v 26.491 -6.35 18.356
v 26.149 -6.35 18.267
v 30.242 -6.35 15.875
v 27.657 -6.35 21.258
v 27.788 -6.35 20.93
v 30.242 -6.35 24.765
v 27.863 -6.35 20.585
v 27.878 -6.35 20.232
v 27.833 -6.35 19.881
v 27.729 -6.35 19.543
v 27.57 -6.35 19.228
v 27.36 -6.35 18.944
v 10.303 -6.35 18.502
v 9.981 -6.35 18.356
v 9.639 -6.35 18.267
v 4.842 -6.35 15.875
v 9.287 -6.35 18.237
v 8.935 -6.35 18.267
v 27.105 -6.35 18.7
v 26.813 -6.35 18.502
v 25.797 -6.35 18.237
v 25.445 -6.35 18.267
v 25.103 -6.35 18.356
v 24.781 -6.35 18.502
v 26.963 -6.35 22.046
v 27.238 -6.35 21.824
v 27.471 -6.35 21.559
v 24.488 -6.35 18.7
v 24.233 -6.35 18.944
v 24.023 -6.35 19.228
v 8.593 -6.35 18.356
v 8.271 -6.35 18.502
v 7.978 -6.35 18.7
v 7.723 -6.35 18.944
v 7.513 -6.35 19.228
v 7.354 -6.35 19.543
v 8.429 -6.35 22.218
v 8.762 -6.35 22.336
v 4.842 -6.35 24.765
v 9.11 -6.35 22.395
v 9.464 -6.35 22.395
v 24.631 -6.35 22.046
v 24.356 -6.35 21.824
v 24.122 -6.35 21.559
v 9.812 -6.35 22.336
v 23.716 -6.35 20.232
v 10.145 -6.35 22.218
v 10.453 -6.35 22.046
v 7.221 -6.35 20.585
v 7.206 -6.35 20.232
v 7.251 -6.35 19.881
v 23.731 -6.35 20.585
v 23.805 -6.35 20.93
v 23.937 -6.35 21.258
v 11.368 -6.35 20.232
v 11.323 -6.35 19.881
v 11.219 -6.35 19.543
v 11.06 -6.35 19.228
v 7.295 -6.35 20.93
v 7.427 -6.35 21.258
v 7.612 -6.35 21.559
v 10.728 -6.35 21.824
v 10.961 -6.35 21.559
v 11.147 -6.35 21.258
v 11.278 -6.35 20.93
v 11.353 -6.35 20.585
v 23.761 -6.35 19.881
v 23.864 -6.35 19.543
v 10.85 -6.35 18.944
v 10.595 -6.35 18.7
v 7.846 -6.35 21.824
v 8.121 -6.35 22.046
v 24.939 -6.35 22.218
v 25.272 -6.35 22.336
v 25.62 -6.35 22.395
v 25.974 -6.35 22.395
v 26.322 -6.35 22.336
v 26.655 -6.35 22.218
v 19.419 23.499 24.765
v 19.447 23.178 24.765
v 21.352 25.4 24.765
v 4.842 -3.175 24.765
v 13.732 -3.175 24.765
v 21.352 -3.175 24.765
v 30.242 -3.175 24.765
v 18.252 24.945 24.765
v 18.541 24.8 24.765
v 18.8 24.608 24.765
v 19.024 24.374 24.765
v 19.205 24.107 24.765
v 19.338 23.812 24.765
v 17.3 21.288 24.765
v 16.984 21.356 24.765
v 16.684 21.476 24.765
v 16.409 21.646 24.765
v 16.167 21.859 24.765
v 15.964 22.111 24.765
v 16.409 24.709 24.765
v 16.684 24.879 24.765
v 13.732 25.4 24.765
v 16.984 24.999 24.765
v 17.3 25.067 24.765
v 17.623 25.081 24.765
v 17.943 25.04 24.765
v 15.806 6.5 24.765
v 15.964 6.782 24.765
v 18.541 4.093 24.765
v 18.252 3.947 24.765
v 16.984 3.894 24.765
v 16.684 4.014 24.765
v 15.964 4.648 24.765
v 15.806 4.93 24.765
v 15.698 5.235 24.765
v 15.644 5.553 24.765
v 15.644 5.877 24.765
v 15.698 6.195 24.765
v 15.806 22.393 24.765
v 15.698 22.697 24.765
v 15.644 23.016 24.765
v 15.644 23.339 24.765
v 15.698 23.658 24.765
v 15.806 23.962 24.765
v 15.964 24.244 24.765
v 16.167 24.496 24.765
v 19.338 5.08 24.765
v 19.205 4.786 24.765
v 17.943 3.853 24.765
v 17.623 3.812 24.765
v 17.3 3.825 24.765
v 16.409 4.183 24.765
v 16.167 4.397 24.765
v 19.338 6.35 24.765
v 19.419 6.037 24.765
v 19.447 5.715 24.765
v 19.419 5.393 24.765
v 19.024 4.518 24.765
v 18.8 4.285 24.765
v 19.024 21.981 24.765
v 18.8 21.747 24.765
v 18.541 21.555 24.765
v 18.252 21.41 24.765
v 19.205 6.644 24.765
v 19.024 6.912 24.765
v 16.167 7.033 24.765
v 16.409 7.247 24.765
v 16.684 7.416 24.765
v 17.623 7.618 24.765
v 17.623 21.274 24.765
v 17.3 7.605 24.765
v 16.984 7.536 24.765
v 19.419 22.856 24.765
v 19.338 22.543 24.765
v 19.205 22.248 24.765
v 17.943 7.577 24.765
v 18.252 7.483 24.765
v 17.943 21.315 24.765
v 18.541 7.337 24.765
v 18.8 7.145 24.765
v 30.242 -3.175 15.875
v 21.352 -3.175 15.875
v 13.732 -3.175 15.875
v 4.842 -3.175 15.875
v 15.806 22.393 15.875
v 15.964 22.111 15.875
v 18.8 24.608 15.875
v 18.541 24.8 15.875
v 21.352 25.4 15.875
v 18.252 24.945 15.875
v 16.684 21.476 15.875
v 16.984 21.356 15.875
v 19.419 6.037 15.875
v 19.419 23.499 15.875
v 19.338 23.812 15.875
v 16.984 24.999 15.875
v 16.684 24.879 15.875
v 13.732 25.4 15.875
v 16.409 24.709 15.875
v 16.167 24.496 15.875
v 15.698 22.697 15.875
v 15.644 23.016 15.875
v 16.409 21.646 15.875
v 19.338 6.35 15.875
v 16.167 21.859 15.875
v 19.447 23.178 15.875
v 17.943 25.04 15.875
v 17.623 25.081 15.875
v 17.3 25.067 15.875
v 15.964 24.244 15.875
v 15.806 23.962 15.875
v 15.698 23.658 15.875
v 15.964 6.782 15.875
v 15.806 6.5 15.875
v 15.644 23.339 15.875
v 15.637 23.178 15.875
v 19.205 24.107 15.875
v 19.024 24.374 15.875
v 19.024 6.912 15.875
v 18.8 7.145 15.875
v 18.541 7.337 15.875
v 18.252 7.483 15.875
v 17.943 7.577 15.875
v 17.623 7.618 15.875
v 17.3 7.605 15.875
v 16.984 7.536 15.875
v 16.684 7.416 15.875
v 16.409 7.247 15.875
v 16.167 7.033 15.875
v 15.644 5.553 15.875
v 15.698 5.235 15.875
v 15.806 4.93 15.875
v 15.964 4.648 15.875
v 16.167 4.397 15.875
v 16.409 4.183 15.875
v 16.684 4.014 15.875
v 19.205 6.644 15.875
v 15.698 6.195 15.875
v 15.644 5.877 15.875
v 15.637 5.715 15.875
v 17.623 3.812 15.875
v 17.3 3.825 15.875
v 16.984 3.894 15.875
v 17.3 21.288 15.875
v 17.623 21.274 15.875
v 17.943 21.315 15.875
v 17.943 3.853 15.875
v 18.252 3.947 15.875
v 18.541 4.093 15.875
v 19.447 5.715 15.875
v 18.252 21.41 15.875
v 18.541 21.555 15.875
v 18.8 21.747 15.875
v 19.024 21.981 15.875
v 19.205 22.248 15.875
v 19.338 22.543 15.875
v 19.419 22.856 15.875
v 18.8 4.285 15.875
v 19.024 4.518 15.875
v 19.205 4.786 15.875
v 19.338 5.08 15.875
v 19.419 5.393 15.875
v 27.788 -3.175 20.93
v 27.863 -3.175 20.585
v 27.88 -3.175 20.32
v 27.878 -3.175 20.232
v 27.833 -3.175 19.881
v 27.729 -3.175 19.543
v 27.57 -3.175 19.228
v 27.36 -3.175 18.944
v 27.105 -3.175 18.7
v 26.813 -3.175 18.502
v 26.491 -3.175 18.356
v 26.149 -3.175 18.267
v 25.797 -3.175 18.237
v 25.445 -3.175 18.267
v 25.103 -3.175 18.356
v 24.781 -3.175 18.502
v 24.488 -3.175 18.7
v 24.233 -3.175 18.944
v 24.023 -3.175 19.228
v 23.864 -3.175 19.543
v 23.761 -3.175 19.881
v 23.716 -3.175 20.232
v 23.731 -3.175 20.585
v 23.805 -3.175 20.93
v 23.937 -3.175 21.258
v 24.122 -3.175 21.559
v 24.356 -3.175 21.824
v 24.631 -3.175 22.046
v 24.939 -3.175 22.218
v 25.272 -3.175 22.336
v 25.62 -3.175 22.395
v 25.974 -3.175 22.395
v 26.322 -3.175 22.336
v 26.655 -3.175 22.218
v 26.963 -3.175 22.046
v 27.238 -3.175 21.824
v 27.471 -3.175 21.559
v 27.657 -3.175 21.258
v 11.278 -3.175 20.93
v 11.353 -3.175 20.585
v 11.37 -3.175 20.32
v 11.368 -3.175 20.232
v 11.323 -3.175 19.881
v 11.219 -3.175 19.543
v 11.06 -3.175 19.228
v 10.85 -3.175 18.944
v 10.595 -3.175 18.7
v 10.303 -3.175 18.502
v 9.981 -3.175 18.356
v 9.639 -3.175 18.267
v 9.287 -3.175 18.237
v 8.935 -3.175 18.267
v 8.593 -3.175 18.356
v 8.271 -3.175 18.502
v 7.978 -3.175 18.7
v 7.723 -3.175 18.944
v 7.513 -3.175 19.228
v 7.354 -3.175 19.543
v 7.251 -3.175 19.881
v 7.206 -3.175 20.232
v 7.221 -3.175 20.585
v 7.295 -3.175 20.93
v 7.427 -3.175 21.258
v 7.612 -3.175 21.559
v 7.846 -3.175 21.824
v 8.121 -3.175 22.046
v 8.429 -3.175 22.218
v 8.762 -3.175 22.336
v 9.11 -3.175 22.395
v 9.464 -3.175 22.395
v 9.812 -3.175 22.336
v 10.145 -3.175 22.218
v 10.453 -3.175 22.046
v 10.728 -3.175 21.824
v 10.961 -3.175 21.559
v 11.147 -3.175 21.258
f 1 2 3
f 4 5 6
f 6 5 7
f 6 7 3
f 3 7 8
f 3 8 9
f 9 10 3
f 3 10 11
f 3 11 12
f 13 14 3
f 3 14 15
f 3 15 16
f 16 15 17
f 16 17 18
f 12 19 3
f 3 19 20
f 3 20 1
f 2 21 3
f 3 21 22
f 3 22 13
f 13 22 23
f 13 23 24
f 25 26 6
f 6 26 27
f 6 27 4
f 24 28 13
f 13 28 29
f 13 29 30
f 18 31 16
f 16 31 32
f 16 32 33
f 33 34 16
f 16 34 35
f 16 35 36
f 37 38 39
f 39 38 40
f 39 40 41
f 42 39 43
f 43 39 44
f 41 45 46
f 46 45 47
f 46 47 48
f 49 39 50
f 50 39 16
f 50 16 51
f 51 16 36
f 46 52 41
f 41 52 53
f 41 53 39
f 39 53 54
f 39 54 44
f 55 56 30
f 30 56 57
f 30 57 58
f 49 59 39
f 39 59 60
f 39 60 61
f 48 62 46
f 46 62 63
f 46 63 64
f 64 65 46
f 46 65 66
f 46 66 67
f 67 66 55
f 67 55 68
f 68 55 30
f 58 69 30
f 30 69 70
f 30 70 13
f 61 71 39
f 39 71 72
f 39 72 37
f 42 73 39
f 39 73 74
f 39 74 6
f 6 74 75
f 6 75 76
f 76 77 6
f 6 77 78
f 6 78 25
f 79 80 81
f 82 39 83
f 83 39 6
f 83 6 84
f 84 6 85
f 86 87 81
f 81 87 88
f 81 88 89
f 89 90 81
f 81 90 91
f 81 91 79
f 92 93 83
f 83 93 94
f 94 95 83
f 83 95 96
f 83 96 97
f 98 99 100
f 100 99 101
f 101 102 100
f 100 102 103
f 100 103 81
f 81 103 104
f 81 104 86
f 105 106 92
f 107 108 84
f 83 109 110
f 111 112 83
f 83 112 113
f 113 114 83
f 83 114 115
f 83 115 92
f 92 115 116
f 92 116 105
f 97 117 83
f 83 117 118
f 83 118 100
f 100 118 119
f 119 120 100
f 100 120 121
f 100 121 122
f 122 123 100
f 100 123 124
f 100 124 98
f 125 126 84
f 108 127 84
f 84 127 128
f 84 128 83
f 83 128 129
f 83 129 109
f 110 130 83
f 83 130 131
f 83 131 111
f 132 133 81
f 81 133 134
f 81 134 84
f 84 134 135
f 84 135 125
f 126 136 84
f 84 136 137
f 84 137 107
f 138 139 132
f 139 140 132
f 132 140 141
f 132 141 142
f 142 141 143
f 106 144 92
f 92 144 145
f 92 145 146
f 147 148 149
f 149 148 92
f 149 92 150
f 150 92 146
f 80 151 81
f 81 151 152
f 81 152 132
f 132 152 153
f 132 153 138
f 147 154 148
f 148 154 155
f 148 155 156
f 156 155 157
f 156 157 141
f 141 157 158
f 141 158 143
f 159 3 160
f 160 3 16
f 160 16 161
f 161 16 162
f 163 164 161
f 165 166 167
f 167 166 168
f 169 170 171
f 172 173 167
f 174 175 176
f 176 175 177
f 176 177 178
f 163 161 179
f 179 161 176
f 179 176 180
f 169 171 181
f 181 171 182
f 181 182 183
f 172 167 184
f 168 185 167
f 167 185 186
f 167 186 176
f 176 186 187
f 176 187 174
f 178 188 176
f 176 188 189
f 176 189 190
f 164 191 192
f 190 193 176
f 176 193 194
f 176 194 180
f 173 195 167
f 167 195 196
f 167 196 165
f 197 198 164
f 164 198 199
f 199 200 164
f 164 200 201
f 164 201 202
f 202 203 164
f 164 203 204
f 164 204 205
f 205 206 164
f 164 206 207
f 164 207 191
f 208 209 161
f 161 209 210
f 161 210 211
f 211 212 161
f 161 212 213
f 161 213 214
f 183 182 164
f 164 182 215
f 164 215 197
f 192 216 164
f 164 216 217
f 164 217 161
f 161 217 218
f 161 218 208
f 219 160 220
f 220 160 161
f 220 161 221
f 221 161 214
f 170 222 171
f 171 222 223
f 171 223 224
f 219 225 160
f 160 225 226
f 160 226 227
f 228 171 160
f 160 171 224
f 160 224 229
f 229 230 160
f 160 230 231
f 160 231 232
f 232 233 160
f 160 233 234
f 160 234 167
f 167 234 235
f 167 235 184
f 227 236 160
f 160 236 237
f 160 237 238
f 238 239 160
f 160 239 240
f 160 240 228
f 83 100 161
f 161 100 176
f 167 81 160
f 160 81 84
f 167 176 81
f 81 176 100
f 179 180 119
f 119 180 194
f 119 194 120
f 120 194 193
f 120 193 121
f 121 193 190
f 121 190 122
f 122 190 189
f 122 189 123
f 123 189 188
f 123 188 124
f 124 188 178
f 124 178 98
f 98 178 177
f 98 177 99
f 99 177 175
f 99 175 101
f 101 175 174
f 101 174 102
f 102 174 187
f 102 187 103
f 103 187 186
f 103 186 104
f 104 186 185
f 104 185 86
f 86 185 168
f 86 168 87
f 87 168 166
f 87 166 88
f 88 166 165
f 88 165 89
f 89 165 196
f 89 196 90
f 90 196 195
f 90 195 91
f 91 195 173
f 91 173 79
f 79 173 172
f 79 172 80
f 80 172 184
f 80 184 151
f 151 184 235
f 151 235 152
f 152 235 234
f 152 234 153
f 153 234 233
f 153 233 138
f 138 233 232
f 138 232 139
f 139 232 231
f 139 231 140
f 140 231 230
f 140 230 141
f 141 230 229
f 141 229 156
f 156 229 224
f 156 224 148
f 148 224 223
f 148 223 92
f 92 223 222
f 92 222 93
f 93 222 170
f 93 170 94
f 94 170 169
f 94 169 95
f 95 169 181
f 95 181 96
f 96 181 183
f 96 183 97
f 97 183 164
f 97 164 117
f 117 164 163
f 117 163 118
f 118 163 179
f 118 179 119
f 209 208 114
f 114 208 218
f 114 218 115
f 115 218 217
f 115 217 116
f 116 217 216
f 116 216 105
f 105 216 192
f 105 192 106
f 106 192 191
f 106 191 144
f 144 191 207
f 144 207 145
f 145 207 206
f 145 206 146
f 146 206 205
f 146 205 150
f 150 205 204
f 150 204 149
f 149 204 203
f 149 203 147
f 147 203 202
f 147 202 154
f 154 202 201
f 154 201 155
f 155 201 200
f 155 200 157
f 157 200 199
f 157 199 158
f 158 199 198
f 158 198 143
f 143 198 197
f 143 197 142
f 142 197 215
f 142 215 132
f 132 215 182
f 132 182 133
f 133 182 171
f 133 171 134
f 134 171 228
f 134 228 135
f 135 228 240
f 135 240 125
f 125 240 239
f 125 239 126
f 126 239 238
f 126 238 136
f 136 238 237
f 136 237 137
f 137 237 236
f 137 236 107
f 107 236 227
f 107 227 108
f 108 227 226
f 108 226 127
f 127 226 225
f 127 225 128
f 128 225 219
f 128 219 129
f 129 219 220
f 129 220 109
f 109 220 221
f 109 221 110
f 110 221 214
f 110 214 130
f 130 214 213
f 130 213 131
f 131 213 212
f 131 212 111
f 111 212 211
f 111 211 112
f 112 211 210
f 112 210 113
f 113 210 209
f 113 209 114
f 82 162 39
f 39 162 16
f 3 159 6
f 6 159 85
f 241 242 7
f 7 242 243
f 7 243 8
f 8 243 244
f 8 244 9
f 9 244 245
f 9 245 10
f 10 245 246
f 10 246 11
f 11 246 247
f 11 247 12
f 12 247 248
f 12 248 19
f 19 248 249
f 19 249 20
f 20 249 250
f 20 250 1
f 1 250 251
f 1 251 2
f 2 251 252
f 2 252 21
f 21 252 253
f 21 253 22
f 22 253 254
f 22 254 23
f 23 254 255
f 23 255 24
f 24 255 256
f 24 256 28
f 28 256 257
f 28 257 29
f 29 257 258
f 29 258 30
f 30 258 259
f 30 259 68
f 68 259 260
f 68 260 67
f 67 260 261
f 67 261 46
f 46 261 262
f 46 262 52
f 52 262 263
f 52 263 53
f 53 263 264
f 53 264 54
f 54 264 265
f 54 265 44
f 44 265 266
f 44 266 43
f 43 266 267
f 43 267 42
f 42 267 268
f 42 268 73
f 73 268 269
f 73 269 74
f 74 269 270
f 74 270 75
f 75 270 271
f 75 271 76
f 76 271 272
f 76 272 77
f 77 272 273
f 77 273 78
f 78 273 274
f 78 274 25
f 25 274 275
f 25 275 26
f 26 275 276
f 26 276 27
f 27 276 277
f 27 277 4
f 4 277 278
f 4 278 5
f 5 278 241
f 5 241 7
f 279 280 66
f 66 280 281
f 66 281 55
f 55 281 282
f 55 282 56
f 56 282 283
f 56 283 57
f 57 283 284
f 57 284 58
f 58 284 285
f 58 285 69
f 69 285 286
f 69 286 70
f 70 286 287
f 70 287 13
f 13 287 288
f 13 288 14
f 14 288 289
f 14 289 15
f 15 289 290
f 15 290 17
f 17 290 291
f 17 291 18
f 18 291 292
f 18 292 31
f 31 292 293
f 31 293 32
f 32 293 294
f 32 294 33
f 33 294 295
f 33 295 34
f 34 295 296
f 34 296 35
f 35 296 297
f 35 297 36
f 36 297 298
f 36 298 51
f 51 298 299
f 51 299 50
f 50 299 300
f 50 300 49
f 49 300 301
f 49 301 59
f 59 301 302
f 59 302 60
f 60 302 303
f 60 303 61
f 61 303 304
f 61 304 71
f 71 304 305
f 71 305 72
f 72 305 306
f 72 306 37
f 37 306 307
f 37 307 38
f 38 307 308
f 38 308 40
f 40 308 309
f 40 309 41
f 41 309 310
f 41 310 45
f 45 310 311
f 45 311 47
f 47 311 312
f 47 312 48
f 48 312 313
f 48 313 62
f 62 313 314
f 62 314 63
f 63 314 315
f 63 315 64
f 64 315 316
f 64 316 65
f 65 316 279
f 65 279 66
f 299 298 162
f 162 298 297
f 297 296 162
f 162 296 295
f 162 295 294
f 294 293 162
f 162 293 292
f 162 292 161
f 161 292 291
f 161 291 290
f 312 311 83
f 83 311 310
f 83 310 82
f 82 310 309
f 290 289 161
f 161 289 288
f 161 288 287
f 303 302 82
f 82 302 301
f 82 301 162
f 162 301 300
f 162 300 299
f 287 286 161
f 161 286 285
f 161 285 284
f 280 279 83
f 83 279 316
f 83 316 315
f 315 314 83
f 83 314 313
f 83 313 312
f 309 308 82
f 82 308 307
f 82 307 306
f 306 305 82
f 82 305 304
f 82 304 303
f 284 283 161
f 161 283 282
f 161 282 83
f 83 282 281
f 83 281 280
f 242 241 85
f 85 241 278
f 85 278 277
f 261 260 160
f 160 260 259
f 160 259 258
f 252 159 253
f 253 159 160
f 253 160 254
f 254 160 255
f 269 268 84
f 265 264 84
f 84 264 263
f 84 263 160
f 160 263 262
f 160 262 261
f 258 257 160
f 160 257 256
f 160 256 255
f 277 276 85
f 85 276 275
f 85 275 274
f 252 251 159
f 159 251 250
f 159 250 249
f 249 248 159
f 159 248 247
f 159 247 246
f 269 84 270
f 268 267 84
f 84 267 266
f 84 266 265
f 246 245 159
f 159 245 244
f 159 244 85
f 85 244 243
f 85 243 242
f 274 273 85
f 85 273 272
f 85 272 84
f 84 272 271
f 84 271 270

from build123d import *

# Parameters (mm, degrees)
SKETCH1_R                = 2.38125
BOSS_EXTRUDE1_DEPTH      = 38.1
FILLET1_R                = 6.35
SKETCH3_W                = 38.1
SKETCH3_H                = 6.35
BOSS_EXTRUDE2_DEPTH      = 12.7
SKETCH2_W                = 7.62
SKETCH2_H                = 8.89
CUT_EXTRUDE7_DEPTH       = 66.019560197
BOSS_EXTRUDE5_DEPTH      = 22.225
BOSS_EXTRUDE5_DEPTH_BACK = 9.525
SKETCH10_W               = 7.62
SKETCH10_H               = 8.89
CUT_EXTRUDE1_DEPTH       = 62.376176621
CUT_EXTRUDE1_DEPTH_BACK  = 62.376176621
SKETCH5_R                = 1.905
SKETCH6_W                = 8.89
SKETCH6_H                = 8.89
BOSS_EXTRUDE4_DEPTH      = 3.175
CUT_EXTRUDE2_DEPTH       = 71.485759779
CUT_EXTRUDE2_DEPTH_BACK  = 71.485759779
SKETCH7_R                = 2.0828
CUT_EXTRUDE8_DEPTH       = 13.335
CUT_EXTRUDE9_DEPTH       = 62.376176621
SKETCH12_W               = 15.875
SKETCH12_H               = 6.35
CUT_EXTRUDE10_DEPTH      = 40.128574278


with BuildPart() as part:
    # Sketch1 → Boss-Extrude1 (new body)
    with BuildSketch(Plane.XY):
        with BuildLine():
            Line((-37.385625, -8.255), (-37.385625, -3.175))
            Line((-37.385625, -3.175), (-37.385625, 3.175))
            Line((-37.385625, 3.175), (37.385625, 3.175))
            Line((37.385625, 3.175), (37.385625, -3.175))
            Line((37.385625, -3.175), (-27.543125, -3.175))
            Line((-27.543125, -3.175), (-27.543125, -8.255))
            ThreePointArc((-27.543125, -8.255), (-32.464375, -13.17625), (-37.385625, -8.255))
        make_face()
        with Locations(Location((-32.464375, -8.255, 0), (0, 0, 180))):
            Circle(SKETCH1_R, mode=Mode.SUBTRACT)
    extrude(amount=BOSS_EXTRUDE1_DEPTH)

    # Fillet1
    fillet1_edges = [part.edges().sort_by_distance(p)[0] for p in [
        (-37.385625, 3.175, 19.05),
    ]]
    fillet(fillet1_edges, radius=FILLET1_R)

    # Sketch3 → Boss-Extrude2 (add)
    with BuildSketch(Plane(origin=(37.385625, 0, 0), x_dir=(0, 0, -1), z_dir=(1, 0, 0))):
        with Locations((-19.05, 0)):
            Rectangle(SKETCH3_W, SKETCH3_H)
    extrude(amount=BOSS_EXTRUDE2_DEPTH)

    # Sketch2 → Cut-Extrude7 (cut, through all)
    with BuildSketch(Plane(origin=(0, 3.175, 0), x_dir=(1, 0, 0), z_dir=(0, 1, 0))):
        with Locations((17.541875, -20.32)):
            Rectangle(SKETCH2_W, SKETCH2_H)
    extrude(amount=-CUT_EXTRUDE7_DEPTH, mode=Mode.SUBTRACT)

    # Sketch10 → Boss-Extrude5 (add, two sides: drawn at the far end of the back side and taken through both)
    with BuildSketch(Plane(origin=(0, 3.175, 0), x_dir=(1, 0, 0), z_dir=(0, 1, 0)).offset(-BOSS_EXTRUDE5_DEPTH_BACK)):
        with Locations((17.541875, -20.32)):
            Rectangle(SKETCH10_W, SKETCH10_H)
    extrude(amount=BOSS_EXTRUDE5_DEPTH + BOSS_EXTRUDE5_DEPTH_BACK)

    # Sketch5 → Cut-Extrude1 (cut, two sides: drawn at the far end of the back side and taken through both)
    with BuildSketch(Plane.XY.offset(24.765).offset(-CUT_EXTRUDE1_DEPTH_BACK)):
        with Locations((17.541875, 5.715)):
            Circle(SKETCH5_R)
        with Locations((17.541875, 23.1775)):
            Circle(SKETCH5_R)
    extrude(amount=CUT_EXTRUDE1_DEPTH + CUT_EXTRUDE1_DEPTH_BACK, mode=Mode.SUBTRACT)

    # Sketch6 → Boss-Extrude4 (add)
    with BuildSketch(Plane(origin=(0, -3.175, 0), x_dir=(1, 0, 0), z_dir=(0, 1, 0))):
        with Locations((9.286875, -20.32)):
            Rectangle(SKETCH6_W, SKETCH6_H)
        with Locations((25.796875, -20.32)):
            Rectangle(SKETCH6_W, SKETCH6_H)
    extrude(amount=-BOSS_EXTRUDE4_DEPTH)

    # Sketch7 → Cut-Extrude2 (cut, two sides: drawn at the far end of the back side and taken through both)
    with BuildSketch(Plane(origin=(0, -6.35, 0), x_dir=(-1, 0, 0), z_dir=(0, -1, 0)).offset(-CUT_EXTRUDE2_DEPTH_BACK)):
        with Locations(Location((-9.286875, -20.32, 0), (0, 0, 90))):
            Circle(SKETCH7_R)
        with Locations(Location((-25.796875, -20.32, 0), (0, 0, 90))):
            Circle(SKETCH7_R)
    extrude(amount=CUT_EXTRUDE2_DEPTH + CUT_EXTRUDE2_DEPTH_BACK, mode=Mode.SUBTRACT)

    # Sketch9 → Cut-Extrude8 (cut)
    with BuildSketch(Plane.XY.offset(38.1)):
        with BuildLine():
            Line((50.085625, 3.175), (50.085625, -3.175))
            Line((50.085625, -3.175), (-27.543125, -3.175))
            Line((-27.543125, -3.175), (-27.543125, -8.255))
            ThreePointArc((-27.543125, -8.255), (-32.464375, -13.17625), (-37.385625, -8.255))
            Line((-37.385625, -8.255), (-37.385625, -3.175))
            ThreePointArc((-37.385625, -3.175), (-35.525753061, 1.315128061), (-31.035625, 3.175))
            Line((-31.035625, 3.175), (50.085625, 3.175))
        make_face()
    extrude(amount=-CUT_EXTRUDE8_DEPTH, mode=Mode.SUBTRACT)

    # Sketch11 → Cut-Extrude9 (cut, through all)
    with BuildSketch(Plane.XY.offset(24.765)):
        Polygon((21.351875, 3.175), (21.351875, -3.175), (30.241875, -3.175), (54.982981917, -12.803682108), (51.254802373, 20.663231938), align=None)
        Polygon((4.841875, -3.175), (13.731875, -3.175), (13.731875, 3.175), (-41.256071428, 5.663811912), (-38.308208532, -22.514289292), align=None)
    extrude(amount=-CUT_EXTRUDE9_DEPTH, mode=Mode.SUBTRACT)

    # Sketch12 → Cut-Extrude10 (cut, through all)
    with BuildSketch(Plane(origin=(21.351875, 0, 0), x_dir=(0, 0, -1), z_dir=(1, 0, 0))):
        with Locations((-7.9375, 0)):
            Rectangle(SKETCH12_W, SKETCH12_H)
    extrude(amount=-CUT_EXTRUDE10_DEPTH, mode=Mode.SUBTRACT)


solid = part.part
